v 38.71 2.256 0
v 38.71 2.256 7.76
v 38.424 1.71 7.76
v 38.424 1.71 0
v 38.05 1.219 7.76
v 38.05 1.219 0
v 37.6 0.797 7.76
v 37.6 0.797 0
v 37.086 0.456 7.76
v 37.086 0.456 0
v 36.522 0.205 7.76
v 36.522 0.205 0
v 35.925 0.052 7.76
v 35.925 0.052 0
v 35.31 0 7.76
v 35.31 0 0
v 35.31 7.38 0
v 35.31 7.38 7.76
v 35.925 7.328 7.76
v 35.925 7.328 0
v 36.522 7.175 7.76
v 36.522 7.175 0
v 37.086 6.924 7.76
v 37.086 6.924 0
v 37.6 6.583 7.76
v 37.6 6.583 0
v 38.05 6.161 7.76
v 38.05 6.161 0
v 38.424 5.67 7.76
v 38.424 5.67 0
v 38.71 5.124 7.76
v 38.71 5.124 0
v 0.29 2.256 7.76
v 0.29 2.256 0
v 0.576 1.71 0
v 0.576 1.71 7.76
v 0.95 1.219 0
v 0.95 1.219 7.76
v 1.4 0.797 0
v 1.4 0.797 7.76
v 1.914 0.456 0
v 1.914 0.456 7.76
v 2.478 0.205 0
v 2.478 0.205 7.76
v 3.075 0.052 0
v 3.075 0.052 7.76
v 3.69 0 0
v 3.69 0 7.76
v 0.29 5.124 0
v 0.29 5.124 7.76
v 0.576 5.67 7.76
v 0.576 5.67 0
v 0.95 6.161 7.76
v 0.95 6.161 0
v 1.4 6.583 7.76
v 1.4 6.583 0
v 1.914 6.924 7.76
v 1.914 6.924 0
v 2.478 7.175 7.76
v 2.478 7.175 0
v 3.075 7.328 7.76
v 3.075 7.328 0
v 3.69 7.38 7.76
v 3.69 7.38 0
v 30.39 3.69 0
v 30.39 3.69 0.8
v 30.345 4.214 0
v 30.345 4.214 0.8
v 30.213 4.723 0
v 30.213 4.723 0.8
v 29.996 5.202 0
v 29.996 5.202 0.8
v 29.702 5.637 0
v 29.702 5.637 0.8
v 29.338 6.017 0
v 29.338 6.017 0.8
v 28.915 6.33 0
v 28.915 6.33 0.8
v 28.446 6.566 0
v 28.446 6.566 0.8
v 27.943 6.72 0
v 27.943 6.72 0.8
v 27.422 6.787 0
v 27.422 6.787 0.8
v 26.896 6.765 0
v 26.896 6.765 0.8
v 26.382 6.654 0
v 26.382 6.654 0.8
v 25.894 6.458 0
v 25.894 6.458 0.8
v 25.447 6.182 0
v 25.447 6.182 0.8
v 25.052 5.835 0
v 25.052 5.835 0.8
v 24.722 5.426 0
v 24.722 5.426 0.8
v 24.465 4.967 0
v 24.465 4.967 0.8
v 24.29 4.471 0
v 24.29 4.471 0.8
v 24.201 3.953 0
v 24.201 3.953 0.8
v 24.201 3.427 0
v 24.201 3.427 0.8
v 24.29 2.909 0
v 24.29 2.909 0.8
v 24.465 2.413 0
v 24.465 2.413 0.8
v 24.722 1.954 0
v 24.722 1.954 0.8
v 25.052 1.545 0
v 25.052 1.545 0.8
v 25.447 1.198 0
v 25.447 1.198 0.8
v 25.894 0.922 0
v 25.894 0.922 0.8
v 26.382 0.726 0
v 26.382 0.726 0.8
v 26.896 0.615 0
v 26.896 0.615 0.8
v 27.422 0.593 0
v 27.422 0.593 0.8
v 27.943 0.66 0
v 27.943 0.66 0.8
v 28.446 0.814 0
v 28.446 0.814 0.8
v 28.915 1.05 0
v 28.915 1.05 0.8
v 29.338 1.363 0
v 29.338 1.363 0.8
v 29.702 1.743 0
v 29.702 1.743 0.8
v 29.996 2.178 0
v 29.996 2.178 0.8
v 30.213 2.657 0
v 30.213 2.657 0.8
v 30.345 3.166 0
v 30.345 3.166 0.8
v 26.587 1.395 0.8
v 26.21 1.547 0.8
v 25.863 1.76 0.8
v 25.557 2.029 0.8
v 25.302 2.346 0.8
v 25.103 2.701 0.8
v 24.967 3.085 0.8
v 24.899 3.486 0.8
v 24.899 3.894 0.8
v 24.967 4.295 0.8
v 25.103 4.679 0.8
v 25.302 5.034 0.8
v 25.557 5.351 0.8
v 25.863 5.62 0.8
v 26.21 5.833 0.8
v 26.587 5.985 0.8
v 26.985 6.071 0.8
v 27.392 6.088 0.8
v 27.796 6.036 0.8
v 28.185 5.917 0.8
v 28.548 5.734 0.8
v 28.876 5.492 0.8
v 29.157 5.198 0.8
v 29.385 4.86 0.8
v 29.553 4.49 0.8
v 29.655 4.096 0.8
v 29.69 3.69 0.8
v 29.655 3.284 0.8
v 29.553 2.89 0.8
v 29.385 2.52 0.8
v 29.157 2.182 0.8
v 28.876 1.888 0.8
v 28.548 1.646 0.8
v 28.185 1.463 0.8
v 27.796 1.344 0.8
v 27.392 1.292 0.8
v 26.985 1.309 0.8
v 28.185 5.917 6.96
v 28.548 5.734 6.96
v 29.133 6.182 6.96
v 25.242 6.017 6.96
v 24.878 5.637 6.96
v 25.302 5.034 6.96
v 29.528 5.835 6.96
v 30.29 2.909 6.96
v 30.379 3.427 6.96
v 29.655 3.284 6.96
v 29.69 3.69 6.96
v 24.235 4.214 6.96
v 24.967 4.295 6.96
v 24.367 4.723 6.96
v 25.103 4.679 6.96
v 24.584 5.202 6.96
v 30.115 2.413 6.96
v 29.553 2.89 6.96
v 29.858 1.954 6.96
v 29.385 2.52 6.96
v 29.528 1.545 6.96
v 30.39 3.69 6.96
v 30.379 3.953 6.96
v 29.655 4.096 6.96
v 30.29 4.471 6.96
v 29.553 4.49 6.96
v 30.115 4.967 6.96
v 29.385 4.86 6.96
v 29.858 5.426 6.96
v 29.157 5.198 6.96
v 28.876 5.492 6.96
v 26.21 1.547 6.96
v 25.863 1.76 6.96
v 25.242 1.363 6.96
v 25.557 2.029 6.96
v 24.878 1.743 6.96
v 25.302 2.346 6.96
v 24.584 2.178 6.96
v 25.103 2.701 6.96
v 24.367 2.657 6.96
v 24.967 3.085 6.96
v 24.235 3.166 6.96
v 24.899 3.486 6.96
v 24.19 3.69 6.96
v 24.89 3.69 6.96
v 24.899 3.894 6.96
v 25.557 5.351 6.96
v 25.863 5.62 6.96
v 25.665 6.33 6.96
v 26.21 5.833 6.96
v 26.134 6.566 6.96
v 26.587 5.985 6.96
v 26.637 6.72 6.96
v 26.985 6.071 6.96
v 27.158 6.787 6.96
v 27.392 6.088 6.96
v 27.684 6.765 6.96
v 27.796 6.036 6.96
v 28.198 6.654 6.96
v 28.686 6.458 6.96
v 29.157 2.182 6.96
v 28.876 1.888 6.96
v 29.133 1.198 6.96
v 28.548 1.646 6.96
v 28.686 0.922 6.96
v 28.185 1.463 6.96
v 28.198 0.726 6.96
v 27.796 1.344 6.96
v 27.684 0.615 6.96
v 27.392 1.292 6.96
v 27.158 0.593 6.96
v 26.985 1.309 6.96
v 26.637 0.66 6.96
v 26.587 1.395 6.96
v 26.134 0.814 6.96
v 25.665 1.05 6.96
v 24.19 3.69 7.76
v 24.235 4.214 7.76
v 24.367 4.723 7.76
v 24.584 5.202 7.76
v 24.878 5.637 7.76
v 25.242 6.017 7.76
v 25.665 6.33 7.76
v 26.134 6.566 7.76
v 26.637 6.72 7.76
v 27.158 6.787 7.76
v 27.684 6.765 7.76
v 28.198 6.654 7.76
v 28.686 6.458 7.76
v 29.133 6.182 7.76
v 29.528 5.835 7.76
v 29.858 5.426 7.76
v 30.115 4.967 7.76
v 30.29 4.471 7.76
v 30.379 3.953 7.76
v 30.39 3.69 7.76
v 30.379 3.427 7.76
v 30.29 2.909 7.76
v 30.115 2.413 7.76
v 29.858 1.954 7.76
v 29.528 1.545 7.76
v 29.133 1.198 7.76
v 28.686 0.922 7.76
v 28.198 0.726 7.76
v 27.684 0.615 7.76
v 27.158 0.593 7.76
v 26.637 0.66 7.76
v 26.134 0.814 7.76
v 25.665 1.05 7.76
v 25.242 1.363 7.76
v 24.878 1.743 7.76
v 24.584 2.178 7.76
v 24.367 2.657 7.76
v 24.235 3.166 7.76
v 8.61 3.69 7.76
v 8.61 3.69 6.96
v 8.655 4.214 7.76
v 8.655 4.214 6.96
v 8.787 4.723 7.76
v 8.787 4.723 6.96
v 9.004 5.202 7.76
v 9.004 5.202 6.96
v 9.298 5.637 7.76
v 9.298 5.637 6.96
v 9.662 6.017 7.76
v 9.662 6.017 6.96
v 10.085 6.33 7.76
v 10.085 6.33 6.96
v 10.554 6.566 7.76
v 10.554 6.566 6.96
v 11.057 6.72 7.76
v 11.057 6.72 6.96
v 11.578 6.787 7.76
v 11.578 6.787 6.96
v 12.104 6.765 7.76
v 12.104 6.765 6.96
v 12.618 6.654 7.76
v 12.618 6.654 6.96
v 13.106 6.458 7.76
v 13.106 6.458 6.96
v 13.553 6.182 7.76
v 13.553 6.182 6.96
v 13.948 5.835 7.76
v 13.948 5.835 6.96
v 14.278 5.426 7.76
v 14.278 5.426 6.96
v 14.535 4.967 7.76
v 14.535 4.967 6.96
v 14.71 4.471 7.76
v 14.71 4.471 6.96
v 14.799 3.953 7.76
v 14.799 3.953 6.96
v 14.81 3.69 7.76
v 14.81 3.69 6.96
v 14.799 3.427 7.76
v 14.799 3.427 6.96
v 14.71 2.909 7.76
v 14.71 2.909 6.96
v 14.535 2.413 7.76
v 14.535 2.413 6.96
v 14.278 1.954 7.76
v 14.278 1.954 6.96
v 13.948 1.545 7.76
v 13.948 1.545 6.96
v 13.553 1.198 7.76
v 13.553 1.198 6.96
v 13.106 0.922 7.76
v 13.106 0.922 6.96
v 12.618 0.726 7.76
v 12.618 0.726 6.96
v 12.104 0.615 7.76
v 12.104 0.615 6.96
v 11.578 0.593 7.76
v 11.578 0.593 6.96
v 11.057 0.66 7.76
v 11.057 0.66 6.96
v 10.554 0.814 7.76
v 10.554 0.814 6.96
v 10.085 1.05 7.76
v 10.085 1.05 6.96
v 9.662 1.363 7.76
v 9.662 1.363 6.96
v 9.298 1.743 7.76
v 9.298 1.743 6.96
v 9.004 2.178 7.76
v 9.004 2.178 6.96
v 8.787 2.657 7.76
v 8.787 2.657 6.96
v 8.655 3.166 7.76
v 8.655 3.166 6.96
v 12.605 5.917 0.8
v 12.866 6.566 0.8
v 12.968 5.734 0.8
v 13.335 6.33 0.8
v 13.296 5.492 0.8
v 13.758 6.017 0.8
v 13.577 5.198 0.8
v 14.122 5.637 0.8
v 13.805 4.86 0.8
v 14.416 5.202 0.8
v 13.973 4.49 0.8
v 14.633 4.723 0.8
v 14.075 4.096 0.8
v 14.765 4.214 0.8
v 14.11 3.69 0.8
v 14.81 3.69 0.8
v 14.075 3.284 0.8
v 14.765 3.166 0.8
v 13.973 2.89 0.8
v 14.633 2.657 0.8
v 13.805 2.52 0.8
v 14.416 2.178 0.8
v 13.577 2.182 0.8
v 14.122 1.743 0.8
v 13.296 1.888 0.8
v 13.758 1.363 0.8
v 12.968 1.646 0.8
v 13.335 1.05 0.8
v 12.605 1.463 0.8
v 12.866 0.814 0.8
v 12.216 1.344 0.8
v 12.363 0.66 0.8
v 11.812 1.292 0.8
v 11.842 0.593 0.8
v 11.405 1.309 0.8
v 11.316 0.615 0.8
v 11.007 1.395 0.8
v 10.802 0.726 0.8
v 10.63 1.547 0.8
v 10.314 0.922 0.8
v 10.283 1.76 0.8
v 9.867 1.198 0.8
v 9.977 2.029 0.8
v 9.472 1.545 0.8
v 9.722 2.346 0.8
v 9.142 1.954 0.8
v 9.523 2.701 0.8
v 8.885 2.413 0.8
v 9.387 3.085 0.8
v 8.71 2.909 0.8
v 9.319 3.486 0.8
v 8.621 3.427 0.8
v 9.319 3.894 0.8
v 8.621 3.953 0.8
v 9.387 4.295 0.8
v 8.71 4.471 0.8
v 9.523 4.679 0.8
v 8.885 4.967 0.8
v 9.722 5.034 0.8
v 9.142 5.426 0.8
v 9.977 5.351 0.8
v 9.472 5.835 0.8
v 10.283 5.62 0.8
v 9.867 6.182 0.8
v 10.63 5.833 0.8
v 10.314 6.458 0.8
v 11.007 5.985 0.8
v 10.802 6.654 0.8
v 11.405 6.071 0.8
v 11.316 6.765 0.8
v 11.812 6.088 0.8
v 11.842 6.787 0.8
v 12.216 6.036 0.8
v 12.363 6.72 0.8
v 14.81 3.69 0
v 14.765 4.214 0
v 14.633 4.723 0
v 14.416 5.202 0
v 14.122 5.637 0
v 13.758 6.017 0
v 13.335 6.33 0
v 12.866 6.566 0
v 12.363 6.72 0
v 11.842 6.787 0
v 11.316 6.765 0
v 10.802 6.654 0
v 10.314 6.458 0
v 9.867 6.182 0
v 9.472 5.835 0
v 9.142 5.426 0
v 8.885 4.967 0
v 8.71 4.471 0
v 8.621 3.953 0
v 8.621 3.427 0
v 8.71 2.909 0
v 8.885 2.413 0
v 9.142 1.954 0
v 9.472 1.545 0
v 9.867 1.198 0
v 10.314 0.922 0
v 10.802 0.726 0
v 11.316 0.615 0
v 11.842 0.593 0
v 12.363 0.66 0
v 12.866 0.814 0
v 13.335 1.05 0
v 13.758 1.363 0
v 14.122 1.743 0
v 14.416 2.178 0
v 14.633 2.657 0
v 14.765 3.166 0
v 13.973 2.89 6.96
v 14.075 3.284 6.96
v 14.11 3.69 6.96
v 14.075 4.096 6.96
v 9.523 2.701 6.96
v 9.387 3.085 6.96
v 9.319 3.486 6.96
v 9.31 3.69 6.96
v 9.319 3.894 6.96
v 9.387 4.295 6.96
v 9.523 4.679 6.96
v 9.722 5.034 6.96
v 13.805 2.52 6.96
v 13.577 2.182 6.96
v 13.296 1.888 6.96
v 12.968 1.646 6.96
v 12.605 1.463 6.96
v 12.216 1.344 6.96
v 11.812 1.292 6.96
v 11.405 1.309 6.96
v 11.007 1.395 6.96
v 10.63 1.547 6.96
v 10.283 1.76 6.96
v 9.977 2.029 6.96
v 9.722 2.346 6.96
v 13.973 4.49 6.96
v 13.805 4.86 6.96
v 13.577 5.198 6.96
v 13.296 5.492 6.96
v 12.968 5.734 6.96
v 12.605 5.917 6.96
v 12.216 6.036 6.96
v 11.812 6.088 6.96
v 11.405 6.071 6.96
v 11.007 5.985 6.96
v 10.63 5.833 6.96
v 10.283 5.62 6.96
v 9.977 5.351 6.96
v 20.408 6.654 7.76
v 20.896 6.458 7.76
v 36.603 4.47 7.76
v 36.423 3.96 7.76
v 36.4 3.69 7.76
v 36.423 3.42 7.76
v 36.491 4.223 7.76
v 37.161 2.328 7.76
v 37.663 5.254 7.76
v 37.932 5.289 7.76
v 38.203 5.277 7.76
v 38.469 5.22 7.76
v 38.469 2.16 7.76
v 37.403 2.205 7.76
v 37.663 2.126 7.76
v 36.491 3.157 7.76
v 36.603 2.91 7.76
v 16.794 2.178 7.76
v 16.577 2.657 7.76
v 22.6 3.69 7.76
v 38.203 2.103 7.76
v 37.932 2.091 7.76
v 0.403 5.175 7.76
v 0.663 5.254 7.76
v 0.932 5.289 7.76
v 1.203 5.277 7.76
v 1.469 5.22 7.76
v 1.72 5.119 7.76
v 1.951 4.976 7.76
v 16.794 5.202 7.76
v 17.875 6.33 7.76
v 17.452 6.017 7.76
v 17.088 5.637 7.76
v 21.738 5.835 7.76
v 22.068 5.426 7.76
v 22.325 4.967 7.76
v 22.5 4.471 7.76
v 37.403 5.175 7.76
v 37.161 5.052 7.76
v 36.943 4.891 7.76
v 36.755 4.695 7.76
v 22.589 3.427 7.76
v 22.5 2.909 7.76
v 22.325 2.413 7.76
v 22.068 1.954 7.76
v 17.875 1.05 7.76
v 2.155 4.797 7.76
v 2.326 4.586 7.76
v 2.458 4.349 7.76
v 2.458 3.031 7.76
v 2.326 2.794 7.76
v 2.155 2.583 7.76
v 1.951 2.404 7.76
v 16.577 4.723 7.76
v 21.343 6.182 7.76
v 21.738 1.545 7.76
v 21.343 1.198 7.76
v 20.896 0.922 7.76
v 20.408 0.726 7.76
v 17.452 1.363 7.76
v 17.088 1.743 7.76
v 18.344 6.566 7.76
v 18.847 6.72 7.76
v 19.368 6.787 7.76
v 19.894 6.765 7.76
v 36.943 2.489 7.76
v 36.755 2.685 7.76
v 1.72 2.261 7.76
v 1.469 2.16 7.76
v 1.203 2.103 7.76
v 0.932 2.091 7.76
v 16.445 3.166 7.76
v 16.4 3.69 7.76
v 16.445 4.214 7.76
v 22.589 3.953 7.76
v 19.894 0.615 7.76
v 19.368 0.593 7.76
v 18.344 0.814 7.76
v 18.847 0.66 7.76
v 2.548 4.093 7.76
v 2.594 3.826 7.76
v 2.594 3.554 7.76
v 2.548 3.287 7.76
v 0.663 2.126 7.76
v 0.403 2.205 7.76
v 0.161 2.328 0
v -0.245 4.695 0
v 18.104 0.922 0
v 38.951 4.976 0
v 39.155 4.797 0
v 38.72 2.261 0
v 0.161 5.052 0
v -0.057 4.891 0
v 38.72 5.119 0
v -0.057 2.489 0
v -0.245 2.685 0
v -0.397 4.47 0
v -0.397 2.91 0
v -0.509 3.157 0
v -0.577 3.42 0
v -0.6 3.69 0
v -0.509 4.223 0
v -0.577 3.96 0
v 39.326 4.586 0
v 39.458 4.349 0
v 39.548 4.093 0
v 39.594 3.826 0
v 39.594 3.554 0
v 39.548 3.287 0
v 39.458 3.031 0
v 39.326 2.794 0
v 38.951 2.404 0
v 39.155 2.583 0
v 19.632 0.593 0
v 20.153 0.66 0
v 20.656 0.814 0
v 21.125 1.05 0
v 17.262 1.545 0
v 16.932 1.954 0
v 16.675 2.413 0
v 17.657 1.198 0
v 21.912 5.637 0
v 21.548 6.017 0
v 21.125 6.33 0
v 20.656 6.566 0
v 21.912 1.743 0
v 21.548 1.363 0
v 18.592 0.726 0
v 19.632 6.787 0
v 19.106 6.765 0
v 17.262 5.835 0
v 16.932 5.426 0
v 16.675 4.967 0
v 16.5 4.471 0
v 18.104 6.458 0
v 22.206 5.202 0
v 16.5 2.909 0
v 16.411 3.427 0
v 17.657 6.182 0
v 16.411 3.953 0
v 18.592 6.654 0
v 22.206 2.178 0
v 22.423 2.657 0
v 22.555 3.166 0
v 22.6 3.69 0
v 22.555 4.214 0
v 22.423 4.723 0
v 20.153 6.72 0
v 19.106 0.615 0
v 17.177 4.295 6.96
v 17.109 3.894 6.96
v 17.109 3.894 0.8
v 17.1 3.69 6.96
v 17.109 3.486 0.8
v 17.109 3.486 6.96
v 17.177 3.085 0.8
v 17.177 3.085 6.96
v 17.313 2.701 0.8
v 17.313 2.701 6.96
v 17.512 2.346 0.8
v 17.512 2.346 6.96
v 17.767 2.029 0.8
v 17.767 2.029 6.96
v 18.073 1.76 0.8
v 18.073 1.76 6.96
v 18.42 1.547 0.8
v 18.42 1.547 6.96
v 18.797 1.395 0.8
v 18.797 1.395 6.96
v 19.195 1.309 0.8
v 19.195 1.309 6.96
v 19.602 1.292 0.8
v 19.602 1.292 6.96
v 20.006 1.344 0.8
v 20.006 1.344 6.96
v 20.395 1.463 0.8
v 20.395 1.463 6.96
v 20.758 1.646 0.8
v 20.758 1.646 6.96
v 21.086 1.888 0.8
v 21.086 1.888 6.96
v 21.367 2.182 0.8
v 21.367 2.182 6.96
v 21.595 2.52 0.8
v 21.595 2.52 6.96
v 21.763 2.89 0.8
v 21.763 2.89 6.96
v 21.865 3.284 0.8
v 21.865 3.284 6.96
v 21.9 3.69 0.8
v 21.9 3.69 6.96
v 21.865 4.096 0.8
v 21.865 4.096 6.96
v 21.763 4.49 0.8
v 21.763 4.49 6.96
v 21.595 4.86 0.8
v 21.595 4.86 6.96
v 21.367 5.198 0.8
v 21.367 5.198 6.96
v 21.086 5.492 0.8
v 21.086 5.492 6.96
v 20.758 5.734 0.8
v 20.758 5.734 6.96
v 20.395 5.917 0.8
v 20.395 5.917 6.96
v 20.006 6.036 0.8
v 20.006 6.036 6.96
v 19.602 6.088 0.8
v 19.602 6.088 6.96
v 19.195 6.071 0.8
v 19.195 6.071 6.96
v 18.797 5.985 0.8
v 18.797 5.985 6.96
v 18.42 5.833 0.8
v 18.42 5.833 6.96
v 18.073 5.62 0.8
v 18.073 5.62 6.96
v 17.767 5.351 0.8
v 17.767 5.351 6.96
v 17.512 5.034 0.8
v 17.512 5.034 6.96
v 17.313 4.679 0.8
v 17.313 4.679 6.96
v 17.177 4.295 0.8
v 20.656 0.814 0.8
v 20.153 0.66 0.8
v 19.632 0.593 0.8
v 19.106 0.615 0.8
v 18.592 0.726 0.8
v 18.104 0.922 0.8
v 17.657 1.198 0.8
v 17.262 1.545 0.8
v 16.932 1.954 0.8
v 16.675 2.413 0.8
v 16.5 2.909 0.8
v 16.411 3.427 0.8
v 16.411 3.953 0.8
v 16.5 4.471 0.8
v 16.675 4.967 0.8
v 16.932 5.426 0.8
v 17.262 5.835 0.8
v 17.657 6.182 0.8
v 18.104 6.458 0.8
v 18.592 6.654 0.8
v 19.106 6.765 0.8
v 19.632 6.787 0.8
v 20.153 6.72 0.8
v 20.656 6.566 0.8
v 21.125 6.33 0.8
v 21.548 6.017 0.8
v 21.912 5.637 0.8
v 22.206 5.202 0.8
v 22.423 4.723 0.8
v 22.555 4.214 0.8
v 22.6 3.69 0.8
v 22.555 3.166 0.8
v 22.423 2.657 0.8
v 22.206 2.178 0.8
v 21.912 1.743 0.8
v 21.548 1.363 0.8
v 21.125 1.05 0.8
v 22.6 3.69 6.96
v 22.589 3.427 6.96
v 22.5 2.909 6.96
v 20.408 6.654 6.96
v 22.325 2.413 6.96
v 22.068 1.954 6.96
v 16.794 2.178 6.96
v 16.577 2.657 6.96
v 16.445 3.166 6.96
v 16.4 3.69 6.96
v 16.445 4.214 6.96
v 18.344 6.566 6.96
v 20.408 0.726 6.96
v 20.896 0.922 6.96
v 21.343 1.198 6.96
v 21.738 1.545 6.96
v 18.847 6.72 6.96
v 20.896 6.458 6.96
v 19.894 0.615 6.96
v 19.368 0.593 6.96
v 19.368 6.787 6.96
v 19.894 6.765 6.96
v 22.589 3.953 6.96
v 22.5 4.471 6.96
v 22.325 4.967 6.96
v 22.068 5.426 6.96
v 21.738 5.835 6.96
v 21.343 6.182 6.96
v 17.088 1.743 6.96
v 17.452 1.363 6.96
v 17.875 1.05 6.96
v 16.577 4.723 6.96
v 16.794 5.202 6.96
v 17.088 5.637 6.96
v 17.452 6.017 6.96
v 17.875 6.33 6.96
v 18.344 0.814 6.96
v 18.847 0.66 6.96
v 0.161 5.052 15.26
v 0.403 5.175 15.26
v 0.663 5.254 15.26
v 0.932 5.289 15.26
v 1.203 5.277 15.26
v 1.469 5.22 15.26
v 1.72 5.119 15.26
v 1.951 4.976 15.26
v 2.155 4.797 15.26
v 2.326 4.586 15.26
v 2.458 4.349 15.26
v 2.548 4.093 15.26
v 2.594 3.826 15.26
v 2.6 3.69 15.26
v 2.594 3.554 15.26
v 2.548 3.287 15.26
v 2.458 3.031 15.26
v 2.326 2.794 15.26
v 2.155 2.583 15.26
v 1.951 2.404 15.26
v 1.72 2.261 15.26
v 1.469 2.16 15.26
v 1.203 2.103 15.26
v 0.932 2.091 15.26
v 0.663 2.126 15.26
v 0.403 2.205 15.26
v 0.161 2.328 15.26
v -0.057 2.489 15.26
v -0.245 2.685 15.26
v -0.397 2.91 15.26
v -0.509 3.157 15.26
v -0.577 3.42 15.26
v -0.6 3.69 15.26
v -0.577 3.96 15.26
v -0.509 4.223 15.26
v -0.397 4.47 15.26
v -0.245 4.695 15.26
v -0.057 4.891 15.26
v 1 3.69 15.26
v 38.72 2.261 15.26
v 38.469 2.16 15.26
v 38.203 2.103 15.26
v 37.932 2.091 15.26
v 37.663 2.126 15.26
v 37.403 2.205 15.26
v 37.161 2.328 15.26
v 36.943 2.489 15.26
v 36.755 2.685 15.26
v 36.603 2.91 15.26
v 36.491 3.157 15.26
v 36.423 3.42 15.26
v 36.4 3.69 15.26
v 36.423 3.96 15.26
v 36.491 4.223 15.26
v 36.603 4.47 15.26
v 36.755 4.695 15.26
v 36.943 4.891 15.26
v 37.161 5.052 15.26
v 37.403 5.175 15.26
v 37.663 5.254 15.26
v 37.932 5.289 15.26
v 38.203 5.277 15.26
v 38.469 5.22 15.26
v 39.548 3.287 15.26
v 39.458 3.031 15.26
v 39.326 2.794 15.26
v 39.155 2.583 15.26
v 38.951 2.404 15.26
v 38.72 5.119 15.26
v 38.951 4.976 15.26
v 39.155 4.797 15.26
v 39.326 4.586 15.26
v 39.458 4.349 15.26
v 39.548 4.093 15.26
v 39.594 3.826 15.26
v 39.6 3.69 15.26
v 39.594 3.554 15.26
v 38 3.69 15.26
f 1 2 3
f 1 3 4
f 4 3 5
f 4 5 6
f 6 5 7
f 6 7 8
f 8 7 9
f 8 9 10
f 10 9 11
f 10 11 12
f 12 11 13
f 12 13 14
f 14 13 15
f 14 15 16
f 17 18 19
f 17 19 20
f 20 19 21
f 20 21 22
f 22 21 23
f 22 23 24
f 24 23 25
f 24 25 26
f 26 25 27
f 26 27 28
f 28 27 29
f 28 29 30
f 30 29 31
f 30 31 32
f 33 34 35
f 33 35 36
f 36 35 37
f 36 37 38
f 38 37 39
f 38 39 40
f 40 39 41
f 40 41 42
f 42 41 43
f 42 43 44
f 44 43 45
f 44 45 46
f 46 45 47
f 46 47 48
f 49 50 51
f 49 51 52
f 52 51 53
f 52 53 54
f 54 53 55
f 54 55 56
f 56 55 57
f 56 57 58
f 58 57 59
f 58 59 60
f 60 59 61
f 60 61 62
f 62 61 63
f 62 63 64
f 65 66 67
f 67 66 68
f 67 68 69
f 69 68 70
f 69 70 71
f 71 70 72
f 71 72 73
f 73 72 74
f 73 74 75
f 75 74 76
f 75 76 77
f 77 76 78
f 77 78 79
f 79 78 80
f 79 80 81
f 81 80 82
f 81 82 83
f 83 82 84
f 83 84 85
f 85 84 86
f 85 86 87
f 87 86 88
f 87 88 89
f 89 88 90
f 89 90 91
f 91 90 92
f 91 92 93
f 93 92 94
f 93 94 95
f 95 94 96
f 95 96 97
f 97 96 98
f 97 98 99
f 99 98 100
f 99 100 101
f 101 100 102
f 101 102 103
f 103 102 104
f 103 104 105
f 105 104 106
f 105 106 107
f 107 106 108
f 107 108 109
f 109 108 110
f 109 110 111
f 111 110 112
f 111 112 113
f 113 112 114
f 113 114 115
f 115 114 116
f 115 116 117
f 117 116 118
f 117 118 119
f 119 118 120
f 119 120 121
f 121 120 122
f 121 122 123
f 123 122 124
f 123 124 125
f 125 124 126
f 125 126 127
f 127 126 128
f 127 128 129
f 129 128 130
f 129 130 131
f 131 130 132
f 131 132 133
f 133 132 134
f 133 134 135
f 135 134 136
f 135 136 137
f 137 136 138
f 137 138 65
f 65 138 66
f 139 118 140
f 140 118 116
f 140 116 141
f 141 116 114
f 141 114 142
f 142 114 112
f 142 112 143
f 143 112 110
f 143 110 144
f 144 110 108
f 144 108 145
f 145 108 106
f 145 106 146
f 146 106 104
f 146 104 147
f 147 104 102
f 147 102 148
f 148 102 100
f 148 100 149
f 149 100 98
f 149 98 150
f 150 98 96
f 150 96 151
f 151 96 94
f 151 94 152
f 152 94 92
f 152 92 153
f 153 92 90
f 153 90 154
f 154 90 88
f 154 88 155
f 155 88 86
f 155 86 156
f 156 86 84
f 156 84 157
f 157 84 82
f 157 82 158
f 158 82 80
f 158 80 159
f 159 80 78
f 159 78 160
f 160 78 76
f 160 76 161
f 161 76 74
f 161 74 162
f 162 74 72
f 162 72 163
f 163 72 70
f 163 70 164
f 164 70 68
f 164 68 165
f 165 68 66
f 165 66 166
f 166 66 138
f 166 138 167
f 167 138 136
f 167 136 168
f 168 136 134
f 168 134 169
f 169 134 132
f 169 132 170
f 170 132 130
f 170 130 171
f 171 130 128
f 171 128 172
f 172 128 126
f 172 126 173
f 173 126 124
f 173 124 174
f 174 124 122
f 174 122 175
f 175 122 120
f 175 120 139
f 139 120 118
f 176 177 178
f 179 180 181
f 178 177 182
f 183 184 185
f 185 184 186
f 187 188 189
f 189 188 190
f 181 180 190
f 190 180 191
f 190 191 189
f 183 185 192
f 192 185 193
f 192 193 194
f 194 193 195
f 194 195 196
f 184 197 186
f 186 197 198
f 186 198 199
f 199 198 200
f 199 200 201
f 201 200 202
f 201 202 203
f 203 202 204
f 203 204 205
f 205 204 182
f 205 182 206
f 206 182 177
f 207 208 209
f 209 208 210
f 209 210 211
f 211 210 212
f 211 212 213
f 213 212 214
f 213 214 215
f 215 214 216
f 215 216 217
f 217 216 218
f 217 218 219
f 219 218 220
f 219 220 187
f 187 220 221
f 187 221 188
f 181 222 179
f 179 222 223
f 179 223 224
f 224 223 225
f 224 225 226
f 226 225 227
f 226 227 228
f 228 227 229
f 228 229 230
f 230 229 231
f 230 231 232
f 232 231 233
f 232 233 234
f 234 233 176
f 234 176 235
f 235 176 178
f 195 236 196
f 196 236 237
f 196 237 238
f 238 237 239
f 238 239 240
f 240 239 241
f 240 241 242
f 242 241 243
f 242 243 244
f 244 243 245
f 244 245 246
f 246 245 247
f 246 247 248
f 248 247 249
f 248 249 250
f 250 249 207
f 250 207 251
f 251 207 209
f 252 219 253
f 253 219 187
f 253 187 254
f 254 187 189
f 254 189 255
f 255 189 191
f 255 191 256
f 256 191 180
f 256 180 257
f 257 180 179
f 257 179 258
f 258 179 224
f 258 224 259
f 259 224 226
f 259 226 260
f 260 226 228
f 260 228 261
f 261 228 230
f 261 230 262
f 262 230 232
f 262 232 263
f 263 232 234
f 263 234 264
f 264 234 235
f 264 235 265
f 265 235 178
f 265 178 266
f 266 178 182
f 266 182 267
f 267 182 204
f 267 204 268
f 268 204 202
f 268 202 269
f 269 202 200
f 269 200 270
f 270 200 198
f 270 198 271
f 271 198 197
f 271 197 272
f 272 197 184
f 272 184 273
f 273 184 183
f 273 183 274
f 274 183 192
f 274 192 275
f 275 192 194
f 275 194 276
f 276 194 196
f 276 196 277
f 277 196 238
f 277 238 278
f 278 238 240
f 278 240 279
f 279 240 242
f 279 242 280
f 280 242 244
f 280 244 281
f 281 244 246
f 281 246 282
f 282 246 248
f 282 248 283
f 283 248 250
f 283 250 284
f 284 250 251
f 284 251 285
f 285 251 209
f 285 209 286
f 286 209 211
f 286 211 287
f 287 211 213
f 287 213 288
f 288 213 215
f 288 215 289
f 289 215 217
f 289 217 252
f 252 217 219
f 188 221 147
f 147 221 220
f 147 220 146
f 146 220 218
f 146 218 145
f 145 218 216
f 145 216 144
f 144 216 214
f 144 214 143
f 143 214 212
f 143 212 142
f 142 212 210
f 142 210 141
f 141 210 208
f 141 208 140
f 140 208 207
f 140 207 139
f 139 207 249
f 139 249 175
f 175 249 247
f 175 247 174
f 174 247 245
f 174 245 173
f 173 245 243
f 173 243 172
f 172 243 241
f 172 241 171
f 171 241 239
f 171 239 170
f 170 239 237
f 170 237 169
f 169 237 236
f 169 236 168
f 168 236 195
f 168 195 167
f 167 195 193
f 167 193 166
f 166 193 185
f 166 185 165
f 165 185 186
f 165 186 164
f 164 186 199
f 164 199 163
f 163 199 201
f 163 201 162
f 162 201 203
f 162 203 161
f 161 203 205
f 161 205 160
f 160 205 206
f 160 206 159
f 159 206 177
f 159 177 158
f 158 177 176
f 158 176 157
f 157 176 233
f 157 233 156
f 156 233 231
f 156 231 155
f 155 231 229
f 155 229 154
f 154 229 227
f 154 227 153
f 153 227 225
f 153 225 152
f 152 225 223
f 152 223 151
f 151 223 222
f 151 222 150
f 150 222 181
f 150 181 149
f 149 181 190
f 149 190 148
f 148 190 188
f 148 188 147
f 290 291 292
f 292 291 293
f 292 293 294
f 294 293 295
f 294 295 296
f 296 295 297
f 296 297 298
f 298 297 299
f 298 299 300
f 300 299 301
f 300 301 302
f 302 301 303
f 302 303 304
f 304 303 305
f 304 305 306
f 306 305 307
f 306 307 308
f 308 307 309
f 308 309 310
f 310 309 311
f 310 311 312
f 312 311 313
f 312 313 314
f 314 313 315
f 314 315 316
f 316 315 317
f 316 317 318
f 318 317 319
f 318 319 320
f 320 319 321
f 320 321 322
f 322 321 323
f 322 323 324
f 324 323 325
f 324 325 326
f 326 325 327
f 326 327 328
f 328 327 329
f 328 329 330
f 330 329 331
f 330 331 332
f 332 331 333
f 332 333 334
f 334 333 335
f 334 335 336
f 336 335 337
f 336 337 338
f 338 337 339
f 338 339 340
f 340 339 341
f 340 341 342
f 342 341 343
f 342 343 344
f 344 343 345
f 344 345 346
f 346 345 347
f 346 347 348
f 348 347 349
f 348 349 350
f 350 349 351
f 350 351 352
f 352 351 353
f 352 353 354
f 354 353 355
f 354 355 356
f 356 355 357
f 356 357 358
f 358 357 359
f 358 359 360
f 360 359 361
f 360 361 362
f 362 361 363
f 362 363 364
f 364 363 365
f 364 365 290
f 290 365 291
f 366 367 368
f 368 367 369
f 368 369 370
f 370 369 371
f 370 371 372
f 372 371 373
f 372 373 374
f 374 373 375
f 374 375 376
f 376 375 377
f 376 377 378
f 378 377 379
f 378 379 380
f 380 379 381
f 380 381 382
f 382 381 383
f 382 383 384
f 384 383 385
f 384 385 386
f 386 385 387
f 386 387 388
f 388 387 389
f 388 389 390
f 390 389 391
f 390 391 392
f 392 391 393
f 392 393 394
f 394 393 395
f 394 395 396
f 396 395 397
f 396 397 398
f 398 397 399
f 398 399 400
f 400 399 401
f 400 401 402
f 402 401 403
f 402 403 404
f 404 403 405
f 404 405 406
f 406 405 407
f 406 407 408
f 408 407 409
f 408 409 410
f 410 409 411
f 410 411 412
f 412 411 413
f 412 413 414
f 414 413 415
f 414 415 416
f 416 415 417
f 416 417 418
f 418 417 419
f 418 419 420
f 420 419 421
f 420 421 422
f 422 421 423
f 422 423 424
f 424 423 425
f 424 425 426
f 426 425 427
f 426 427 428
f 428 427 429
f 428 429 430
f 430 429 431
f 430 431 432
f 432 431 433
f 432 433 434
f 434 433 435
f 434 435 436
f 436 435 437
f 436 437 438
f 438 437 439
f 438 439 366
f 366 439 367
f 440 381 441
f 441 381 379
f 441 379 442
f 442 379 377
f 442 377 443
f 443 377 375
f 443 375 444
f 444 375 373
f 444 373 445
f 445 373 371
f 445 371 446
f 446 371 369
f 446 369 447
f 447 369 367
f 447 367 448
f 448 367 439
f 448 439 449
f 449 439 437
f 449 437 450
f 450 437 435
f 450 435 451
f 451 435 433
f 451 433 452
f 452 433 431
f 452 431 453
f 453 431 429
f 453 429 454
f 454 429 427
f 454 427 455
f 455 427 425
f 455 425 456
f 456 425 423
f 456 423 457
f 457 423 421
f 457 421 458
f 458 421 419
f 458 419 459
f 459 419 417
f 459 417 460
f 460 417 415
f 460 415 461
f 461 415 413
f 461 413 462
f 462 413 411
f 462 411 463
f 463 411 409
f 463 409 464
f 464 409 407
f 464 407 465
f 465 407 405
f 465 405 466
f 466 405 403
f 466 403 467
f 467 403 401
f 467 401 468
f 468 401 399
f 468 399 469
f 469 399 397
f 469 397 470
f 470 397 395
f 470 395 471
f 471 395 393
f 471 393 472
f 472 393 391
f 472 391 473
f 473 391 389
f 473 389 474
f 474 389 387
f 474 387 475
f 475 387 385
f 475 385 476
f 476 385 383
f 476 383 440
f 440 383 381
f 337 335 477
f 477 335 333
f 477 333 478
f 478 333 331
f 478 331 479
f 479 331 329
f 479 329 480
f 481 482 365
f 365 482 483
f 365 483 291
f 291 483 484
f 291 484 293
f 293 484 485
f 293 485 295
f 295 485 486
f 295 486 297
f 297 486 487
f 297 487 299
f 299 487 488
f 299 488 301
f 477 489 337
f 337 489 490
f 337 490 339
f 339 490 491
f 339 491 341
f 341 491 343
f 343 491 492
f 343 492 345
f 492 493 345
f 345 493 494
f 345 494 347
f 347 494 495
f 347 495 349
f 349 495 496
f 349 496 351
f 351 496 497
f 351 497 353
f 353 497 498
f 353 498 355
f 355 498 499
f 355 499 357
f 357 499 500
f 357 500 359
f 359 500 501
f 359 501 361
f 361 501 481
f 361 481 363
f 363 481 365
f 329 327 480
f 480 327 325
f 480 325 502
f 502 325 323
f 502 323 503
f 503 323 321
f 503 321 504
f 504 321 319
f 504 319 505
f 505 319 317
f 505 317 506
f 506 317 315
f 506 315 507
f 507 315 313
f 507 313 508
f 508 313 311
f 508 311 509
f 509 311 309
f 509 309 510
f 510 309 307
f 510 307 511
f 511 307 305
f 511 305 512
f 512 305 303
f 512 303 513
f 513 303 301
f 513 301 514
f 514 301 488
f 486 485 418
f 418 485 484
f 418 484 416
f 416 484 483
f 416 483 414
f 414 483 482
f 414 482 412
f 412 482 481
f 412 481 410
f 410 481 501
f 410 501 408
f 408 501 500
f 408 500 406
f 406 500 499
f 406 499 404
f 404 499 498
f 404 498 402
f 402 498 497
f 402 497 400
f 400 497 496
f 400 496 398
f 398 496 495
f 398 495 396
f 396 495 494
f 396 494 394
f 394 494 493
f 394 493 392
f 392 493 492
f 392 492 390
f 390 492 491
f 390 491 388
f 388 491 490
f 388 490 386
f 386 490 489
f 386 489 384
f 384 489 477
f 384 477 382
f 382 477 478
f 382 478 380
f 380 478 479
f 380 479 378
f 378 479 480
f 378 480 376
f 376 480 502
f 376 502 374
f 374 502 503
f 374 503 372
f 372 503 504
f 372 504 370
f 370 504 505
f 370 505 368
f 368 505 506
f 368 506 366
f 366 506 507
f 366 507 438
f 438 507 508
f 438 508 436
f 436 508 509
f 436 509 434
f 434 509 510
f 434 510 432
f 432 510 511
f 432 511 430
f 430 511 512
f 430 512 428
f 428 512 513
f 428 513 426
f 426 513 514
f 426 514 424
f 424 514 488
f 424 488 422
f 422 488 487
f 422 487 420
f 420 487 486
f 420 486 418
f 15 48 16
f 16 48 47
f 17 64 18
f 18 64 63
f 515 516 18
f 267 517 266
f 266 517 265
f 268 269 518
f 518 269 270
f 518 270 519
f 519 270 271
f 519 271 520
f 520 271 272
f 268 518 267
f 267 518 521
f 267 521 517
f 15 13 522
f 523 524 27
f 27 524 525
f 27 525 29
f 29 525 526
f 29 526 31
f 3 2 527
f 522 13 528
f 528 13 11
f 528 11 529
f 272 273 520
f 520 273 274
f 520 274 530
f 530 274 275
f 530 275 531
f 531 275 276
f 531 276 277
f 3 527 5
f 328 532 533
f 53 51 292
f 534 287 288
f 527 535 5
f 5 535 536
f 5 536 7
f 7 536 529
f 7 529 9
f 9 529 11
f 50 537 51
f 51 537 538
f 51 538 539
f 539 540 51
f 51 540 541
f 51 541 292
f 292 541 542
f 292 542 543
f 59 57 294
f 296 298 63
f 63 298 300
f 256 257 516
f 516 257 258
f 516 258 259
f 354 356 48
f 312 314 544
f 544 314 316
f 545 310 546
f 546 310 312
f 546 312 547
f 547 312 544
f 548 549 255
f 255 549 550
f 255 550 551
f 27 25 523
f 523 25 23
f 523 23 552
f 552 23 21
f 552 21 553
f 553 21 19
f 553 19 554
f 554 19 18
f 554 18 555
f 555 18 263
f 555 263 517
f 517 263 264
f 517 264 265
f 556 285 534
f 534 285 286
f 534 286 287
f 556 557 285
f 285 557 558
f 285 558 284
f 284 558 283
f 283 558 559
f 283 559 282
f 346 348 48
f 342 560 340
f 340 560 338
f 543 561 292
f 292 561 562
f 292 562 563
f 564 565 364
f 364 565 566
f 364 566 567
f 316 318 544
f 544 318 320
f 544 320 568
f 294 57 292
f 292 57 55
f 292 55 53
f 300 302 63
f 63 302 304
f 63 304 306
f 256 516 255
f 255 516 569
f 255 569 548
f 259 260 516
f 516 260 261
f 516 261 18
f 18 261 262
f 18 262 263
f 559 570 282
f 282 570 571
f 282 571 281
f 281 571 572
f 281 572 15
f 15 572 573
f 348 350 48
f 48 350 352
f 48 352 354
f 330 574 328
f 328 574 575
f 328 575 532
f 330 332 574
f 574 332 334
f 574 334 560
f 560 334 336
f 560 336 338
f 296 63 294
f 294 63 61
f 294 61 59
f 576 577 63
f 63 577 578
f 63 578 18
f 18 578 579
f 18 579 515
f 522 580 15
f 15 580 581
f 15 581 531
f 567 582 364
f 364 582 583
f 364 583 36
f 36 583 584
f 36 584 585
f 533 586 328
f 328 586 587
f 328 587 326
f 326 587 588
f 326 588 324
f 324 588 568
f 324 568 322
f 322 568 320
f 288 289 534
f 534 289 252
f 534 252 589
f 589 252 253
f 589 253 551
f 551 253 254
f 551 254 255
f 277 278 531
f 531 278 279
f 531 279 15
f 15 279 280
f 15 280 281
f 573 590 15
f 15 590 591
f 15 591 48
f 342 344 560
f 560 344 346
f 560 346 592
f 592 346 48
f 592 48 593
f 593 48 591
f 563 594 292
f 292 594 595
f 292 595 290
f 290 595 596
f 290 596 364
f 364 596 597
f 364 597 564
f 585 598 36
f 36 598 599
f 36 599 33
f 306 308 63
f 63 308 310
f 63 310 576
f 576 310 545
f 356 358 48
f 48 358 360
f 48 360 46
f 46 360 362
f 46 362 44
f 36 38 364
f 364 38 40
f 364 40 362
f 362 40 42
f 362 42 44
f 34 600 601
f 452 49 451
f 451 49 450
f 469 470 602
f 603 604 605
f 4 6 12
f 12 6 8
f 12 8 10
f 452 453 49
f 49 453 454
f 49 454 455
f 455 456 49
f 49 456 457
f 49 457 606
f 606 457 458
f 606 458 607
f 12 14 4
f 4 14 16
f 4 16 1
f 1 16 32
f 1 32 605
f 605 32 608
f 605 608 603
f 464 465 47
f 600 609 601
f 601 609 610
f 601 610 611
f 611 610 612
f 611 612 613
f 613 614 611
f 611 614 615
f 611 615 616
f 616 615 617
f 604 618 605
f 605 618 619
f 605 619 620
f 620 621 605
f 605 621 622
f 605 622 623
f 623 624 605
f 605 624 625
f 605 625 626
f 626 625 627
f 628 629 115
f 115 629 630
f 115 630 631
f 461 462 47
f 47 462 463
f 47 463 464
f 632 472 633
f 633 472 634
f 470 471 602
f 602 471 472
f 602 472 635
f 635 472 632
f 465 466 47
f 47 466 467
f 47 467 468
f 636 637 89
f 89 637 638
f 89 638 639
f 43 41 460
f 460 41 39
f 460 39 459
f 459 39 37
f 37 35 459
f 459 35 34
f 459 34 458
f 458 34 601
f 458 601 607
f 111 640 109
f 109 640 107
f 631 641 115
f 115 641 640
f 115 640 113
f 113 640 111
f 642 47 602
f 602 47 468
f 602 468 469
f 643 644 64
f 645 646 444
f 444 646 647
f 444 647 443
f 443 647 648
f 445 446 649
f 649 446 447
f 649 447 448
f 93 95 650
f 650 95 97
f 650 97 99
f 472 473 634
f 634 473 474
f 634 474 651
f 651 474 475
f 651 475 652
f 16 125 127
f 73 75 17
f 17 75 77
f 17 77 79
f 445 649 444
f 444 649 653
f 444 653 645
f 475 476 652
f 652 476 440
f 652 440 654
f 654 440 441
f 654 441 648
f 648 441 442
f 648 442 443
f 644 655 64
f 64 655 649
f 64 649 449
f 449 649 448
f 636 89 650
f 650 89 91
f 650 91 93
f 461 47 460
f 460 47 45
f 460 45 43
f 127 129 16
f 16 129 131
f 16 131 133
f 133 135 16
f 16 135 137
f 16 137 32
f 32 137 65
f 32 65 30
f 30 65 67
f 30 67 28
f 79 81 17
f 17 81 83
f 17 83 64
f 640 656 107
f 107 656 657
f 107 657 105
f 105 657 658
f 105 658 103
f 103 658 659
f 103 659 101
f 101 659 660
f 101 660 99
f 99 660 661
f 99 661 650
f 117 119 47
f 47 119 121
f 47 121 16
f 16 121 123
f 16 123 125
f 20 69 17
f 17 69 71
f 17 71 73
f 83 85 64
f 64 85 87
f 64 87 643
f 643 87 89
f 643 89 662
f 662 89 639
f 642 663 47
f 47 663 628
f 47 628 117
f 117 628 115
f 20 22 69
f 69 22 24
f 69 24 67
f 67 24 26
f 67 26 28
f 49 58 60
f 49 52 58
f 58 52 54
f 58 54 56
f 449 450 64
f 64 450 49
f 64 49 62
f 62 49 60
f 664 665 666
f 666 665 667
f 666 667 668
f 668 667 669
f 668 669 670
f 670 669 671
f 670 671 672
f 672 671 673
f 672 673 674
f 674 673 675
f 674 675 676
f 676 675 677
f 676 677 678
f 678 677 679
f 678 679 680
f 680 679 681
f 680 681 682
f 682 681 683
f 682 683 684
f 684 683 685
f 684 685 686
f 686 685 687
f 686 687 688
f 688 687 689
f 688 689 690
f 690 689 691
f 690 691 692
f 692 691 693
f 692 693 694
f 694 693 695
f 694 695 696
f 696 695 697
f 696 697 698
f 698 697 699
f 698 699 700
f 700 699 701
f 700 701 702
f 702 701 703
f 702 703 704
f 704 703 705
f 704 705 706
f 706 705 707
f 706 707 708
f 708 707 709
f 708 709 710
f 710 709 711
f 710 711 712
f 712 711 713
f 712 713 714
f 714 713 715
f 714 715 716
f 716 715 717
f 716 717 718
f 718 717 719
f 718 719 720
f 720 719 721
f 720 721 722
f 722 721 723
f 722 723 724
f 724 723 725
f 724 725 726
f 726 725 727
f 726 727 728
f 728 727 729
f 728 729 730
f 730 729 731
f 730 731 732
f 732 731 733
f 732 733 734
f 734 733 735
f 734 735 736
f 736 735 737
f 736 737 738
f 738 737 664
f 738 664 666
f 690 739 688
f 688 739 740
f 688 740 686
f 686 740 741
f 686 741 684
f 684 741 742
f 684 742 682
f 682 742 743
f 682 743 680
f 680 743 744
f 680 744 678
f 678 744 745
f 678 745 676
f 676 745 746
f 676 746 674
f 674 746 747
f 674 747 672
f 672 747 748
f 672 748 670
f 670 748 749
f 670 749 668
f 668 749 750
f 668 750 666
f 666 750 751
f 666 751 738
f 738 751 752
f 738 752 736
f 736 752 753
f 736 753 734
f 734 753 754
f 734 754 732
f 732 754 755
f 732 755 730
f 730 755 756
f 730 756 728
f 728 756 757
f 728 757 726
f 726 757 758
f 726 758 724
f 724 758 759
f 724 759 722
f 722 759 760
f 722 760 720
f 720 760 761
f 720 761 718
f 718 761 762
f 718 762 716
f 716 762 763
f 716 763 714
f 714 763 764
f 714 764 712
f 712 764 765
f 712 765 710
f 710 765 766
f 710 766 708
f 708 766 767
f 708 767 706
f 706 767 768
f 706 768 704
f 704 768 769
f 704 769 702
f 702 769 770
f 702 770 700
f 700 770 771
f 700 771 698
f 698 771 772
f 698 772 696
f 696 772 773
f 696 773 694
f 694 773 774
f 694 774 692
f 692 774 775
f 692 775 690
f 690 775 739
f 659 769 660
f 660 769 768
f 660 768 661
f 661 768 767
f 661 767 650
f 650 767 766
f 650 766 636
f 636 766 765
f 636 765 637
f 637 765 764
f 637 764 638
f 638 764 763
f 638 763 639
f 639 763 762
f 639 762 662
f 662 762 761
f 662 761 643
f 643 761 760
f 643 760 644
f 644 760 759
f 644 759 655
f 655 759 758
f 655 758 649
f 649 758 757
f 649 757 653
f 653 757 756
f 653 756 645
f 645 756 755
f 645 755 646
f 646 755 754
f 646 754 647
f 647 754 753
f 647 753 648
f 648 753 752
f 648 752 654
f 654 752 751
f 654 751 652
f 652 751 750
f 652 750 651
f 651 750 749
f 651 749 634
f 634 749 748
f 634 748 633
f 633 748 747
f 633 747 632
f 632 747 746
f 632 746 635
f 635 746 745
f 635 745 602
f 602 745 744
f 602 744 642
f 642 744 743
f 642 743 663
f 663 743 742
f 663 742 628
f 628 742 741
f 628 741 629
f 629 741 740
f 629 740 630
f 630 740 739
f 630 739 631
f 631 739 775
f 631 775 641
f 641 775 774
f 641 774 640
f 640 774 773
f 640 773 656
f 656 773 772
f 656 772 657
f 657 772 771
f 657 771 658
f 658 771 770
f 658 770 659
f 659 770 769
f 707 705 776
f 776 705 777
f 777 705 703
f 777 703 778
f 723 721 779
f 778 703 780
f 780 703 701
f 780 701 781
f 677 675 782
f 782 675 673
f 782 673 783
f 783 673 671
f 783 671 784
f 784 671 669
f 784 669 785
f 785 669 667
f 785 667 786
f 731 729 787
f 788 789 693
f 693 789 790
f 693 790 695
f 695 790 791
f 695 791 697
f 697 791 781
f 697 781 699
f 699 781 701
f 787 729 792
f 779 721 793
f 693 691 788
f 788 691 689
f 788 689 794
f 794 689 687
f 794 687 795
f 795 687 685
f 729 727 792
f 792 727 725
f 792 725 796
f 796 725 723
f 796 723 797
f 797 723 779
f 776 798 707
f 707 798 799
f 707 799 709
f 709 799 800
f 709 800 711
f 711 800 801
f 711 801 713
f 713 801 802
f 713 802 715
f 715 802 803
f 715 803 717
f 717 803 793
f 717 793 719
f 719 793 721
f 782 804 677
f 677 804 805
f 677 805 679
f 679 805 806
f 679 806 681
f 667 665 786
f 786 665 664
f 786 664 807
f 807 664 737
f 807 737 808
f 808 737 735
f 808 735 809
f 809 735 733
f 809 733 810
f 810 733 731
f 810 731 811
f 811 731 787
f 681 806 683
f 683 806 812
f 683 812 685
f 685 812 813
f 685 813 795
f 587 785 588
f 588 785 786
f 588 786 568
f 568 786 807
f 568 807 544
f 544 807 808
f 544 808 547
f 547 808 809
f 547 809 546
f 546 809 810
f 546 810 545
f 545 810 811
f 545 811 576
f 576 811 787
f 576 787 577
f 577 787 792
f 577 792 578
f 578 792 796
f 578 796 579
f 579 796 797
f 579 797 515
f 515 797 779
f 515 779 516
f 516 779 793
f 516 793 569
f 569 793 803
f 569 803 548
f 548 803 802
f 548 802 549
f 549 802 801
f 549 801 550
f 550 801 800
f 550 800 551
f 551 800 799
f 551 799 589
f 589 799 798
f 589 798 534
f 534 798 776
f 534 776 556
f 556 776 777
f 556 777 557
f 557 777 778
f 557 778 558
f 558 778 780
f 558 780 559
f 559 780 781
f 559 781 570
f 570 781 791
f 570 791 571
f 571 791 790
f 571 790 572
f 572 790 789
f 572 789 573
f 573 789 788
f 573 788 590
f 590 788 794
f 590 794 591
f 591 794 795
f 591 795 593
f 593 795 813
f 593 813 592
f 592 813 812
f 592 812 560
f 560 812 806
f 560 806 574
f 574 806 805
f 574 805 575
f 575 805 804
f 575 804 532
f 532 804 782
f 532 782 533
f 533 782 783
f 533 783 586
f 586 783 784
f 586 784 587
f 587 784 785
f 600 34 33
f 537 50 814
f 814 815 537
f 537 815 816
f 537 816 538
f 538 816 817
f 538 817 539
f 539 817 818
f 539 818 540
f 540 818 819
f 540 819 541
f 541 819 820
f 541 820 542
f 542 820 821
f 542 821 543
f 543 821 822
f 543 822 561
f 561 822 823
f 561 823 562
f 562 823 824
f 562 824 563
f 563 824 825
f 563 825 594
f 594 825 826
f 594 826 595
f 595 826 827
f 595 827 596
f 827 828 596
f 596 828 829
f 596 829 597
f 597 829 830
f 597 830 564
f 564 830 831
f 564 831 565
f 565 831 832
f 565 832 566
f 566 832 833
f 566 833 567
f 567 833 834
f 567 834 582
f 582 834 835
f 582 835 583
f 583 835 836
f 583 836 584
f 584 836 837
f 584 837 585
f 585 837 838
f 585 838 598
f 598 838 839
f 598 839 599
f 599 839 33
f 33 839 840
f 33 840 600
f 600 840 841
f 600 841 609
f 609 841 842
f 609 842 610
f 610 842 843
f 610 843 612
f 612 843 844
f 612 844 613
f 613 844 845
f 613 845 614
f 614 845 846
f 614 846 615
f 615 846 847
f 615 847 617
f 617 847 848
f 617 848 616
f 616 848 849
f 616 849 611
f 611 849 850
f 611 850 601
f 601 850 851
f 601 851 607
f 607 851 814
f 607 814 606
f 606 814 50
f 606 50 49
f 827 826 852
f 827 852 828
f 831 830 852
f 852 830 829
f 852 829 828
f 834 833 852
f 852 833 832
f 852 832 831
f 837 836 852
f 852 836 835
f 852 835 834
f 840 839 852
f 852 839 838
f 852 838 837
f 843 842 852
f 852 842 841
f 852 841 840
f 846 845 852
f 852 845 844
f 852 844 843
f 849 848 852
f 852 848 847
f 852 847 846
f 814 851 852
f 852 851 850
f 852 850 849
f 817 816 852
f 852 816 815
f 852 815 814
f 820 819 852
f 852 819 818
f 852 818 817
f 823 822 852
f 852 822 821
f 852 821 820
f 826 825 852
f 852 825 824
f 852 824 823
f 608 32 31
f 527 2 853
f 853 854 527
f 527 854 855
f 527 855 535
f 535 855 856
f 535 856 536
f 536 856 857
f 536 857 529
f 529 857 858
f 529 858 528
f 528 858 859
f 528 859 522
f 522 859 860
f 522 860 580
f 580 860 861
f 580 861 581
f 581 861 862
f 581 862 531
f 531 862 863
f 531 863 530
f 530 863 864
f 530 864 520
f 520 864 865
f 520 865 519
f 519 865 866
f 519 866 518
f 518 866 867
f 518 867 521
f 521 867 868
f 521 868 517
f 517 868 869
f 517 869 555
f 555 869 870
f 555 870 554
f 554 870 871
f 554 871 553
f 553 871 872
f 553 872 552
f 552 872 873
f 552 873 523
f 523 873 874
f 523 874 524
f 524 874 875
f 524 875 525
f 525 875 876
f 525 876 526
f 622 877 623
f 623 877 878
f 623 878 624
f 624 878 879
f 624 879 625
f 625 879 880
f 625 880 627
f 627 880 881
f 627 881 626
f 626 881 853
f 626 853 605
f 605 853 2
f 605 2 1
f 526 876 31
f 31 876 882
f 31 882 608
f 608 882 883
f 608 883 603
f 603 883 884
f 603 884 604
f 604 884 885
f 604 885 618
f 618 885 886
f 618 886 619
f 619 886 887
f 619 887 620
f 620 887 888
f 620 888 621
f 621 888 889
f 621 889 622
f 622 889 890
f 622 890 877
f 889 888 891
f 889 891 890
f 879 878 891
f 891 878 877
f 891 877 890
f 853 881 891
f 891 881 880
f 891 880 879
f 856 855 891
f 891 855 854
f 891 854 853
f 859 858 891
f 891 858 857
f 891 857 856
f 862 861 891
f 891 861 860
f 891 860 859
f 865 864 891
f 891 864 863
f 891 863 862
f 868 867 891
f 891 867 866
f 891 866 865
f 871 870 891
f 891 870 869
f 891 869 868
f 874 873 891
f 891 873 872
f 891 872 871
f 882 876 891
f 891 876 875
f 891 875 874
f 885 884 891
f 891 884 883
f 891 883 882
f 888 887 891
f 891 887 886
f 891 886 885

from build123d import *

# Parameters (mm, degrees)
SKETCH1_W                = 39
SKETCH1_H                = 7.38
BOSS_EXTRUDE1_DEPTH      = 7.76
SKETCH2_R                = 2.4
CUT_EXTRUDE1_DEPTH       = 7.76
CUT_EXTRUDE2_OUTLINE_R   = 3.1
CUT_EXTRUDE2_OUTLINE_R_2 = 2.4
CUT_EXTRUDE2_DEPTH       = 0.8
CUT_EXTRUDE3_START       = 6.96
CUT_EXTRUDE3_OUTLINE_R   = 3.1
CUT_EXTRUDE3_OUTLINE_R_2 = 2.4
CUT_EXTRUDE3_DEPTH       = 0.8
LPATTERN3_COUNT          = 3
LPATTERN3_PITCH          = 7.79
LPATTERN6_COUNT          = 3
LPATTERN6_PITCH          = 7.79
FILLET1_R                = 3.69
FILLET2_R                = 3.69
FILLET3_R                = 3.69
FILLET4_R                = 3.69
SKETCH3_R                = 3.1
BOSS_EXTRUDE2_DEPTH      = 7.76
BOSS_EXTRUDE3_START      = -7.76
SKETCH4_R                = 3.1
BOSS_EXTRUDE3_DEPTH      = 7.76
SKETCH6_R                = 1.6
BOSS_EXTRUDE4_DEPTH      = 7.5
SKETCH10_R               = 1.6
BOSS_EXTRUDE5_DEPTH      = 8


# Read off the part's stored shape, not the designer's step: Cut-Extrude2, Cut-Extrude3
with BuildPart() as part:
    # Sketch1 → Boss-Extrude1 (new body)
    with BuildSketch(Plane.XY):
        with Locations((19.5, 3.69)):
            Rectangle(SKETCH1_W, SKETCH1_H)
    extrude(amount=BOSS_EXTRUDE1_DEPTH)

    # Sketch2 → Cut-Extrude1 (cut)
    with BuildSketch(Plane.XY.offset(7.76)):
        with Locations((19.5, 3.69)):
            Circle(SKETCH2_R)
    cut_extrude1 = extrude(amount=-CUT_EXTRUDE1_DEPTH, mode=Mode.SUBTRACT)

    # Cut-Extrude2 outline → Cut-Extrude2 (cut)
    with BuildSketch(Plane.XY):
        with Locations((19.5, 3.69)):
            Circle(CUT_EXTRUDE2_OUTLINE_R)
        with Locations((19.5, 3.69)):
            Circle(CUT_EXTRUDE2_OUTLINE_R_2, mode=Mode.SUBTRACT)
    cut_extrude2 = extrude(amount=CUT_EXTRUDE2_DEPTH, mode=Mode.SUBTRACT)

    # Cut-Extrude3 outline → Cut-Extrude3 (cut)
    with BuildSketch(Plane.XY.offset(CUT_EXTRUDE3_START)):
        with Locations((19.5, 3.69)):
            Circle(CUT_EXTRUDE3_OUTLINE_R)
        with Locations((19.5, 3.69)):
            Circle(CUT_EXTRUDE3_OUTLINE_R_2, mode=Mode.SUBTRACT)
    cut_extrude3 = extrude(amount=CUT_EXTRUDE3_DEPTH, mode=Mode.SUBTRACT)

    # LPattern3: Cut-Extrude1, Cut-Extrude2, Cut-Extrude3 ×3
    with Locations(*[(-i * LPATTERN3_PITCH, 0, 0) for i in range(1, LPATTERN3_COUNT)]):
        add(cut_extrude1, mode=Mode.SUBTRACT)
        add(cut_extrude2, mode=Mode.SUBTRACT)
        add(cut_extrude3, mode=Mode.SUBTRACT)

    # LPattern6: Cut-Extrude1, Cut-Extrude2, Cut-Extrude3 ×3
    with Locations(*[(i * LPATTERN6_PITCH, 0, 0) for i in range(1, LPATTERN6_COUNT)]):
        add(cut_extrude1, mode=Mode.SUBTRACT)
        add(cut_extrude2, mode=Mode.SUBTRACT)
        add(cut_extrude3, mode=Mode.SUBTRACT)

    # Fillet1
    fillet1_edges = [part.edges().sort_by_distance(p)[0] for p in [
        (0, 7.38, 3.88),
    ]]
    fillet(fillet1_edges, radius=FILLET1_R)

    # Fillet2
    fillet2_edges = [part.edges().sort_by_distance(p)[0] for p in [
        (0, 0, 3.88),
    ]]
    fillet(fillet2_edges, radius=FILLET2_R - 0.0001)  # a hair under: the kernel refuses the full size

    # Fillet3
    fillet3_edges = [part.edges().sort_by_distance(p)[0] for p in [
        (39, 7.38, 3.88),
    ]]
    fillet(fillet3_edges, radius=FILLET3_R)

    # Fillet4
    fillet4_edges = [part.edges().sort_by_distance(p)[0] for p in [
        (39, 0, 3.88),
    ]]
    fillet(fillet4_edges, radius=FILLET4_R - 0.0001)  # a hair under: the kernel refuses the full size

    # Sketch3 → Boss-Extrude2 (add)
    with BuildSketch(Plane(origin=(0, 0, 0), x_dir=(-1, 0, 0), z_dir=(0, 0, -1))):
        with Locations((-35.08, 3.69)):
            Circle(SKETCH3_R)
    extrude(amount=-BOSS_EXTRUDE2_DEPTH)

    # Sketch4 → Boss-Extrude3 (add)
    with BuildSketch(Plane.XY.offset(7.76).offset(BOSS_EXTRUDE3_START)):
        with Locations((3.92, 3.69)):
            Circle(SKETCH4_R)
    extrude(amount=BOSS_EXTRUDE3_DEPTH)

    # Sketch6 → Boss-Extrude4 (add)
    with BuildSketch(Plane.XY.offset(7.76)):
        with Locations(Location((1, 3.69, 0), (0, 0, 243.655122674))):
            Circle(SKETCH6_R)
        with Locations(Location((38, 3.69, 0), (0, 0, 296.344877326))):
            Circle(SKETCH6_R)
    extrude(amount=BOSS_EXTRUDE4_DEPTH)

    # Sketch10 → Boss-Extrude5 (add)
    with BuildSketch(Plane(origin=(0, 0, 0), x_dir=(-1, 0, 0), z_dir=(0, 0, -1))):
        with Locations(Location((-38, 3.69, 0), (0, 0, 116.344877326))):
            Circle(SKETCH10_R)
        with Locations(Location((-1, 3.69, 0), (0, 0, 63.655122674))):
            Circle(SKETCH10_R)
    extrude(amount=-BOSS_EXTRUDE5_DEPTH)


solid = part.part
